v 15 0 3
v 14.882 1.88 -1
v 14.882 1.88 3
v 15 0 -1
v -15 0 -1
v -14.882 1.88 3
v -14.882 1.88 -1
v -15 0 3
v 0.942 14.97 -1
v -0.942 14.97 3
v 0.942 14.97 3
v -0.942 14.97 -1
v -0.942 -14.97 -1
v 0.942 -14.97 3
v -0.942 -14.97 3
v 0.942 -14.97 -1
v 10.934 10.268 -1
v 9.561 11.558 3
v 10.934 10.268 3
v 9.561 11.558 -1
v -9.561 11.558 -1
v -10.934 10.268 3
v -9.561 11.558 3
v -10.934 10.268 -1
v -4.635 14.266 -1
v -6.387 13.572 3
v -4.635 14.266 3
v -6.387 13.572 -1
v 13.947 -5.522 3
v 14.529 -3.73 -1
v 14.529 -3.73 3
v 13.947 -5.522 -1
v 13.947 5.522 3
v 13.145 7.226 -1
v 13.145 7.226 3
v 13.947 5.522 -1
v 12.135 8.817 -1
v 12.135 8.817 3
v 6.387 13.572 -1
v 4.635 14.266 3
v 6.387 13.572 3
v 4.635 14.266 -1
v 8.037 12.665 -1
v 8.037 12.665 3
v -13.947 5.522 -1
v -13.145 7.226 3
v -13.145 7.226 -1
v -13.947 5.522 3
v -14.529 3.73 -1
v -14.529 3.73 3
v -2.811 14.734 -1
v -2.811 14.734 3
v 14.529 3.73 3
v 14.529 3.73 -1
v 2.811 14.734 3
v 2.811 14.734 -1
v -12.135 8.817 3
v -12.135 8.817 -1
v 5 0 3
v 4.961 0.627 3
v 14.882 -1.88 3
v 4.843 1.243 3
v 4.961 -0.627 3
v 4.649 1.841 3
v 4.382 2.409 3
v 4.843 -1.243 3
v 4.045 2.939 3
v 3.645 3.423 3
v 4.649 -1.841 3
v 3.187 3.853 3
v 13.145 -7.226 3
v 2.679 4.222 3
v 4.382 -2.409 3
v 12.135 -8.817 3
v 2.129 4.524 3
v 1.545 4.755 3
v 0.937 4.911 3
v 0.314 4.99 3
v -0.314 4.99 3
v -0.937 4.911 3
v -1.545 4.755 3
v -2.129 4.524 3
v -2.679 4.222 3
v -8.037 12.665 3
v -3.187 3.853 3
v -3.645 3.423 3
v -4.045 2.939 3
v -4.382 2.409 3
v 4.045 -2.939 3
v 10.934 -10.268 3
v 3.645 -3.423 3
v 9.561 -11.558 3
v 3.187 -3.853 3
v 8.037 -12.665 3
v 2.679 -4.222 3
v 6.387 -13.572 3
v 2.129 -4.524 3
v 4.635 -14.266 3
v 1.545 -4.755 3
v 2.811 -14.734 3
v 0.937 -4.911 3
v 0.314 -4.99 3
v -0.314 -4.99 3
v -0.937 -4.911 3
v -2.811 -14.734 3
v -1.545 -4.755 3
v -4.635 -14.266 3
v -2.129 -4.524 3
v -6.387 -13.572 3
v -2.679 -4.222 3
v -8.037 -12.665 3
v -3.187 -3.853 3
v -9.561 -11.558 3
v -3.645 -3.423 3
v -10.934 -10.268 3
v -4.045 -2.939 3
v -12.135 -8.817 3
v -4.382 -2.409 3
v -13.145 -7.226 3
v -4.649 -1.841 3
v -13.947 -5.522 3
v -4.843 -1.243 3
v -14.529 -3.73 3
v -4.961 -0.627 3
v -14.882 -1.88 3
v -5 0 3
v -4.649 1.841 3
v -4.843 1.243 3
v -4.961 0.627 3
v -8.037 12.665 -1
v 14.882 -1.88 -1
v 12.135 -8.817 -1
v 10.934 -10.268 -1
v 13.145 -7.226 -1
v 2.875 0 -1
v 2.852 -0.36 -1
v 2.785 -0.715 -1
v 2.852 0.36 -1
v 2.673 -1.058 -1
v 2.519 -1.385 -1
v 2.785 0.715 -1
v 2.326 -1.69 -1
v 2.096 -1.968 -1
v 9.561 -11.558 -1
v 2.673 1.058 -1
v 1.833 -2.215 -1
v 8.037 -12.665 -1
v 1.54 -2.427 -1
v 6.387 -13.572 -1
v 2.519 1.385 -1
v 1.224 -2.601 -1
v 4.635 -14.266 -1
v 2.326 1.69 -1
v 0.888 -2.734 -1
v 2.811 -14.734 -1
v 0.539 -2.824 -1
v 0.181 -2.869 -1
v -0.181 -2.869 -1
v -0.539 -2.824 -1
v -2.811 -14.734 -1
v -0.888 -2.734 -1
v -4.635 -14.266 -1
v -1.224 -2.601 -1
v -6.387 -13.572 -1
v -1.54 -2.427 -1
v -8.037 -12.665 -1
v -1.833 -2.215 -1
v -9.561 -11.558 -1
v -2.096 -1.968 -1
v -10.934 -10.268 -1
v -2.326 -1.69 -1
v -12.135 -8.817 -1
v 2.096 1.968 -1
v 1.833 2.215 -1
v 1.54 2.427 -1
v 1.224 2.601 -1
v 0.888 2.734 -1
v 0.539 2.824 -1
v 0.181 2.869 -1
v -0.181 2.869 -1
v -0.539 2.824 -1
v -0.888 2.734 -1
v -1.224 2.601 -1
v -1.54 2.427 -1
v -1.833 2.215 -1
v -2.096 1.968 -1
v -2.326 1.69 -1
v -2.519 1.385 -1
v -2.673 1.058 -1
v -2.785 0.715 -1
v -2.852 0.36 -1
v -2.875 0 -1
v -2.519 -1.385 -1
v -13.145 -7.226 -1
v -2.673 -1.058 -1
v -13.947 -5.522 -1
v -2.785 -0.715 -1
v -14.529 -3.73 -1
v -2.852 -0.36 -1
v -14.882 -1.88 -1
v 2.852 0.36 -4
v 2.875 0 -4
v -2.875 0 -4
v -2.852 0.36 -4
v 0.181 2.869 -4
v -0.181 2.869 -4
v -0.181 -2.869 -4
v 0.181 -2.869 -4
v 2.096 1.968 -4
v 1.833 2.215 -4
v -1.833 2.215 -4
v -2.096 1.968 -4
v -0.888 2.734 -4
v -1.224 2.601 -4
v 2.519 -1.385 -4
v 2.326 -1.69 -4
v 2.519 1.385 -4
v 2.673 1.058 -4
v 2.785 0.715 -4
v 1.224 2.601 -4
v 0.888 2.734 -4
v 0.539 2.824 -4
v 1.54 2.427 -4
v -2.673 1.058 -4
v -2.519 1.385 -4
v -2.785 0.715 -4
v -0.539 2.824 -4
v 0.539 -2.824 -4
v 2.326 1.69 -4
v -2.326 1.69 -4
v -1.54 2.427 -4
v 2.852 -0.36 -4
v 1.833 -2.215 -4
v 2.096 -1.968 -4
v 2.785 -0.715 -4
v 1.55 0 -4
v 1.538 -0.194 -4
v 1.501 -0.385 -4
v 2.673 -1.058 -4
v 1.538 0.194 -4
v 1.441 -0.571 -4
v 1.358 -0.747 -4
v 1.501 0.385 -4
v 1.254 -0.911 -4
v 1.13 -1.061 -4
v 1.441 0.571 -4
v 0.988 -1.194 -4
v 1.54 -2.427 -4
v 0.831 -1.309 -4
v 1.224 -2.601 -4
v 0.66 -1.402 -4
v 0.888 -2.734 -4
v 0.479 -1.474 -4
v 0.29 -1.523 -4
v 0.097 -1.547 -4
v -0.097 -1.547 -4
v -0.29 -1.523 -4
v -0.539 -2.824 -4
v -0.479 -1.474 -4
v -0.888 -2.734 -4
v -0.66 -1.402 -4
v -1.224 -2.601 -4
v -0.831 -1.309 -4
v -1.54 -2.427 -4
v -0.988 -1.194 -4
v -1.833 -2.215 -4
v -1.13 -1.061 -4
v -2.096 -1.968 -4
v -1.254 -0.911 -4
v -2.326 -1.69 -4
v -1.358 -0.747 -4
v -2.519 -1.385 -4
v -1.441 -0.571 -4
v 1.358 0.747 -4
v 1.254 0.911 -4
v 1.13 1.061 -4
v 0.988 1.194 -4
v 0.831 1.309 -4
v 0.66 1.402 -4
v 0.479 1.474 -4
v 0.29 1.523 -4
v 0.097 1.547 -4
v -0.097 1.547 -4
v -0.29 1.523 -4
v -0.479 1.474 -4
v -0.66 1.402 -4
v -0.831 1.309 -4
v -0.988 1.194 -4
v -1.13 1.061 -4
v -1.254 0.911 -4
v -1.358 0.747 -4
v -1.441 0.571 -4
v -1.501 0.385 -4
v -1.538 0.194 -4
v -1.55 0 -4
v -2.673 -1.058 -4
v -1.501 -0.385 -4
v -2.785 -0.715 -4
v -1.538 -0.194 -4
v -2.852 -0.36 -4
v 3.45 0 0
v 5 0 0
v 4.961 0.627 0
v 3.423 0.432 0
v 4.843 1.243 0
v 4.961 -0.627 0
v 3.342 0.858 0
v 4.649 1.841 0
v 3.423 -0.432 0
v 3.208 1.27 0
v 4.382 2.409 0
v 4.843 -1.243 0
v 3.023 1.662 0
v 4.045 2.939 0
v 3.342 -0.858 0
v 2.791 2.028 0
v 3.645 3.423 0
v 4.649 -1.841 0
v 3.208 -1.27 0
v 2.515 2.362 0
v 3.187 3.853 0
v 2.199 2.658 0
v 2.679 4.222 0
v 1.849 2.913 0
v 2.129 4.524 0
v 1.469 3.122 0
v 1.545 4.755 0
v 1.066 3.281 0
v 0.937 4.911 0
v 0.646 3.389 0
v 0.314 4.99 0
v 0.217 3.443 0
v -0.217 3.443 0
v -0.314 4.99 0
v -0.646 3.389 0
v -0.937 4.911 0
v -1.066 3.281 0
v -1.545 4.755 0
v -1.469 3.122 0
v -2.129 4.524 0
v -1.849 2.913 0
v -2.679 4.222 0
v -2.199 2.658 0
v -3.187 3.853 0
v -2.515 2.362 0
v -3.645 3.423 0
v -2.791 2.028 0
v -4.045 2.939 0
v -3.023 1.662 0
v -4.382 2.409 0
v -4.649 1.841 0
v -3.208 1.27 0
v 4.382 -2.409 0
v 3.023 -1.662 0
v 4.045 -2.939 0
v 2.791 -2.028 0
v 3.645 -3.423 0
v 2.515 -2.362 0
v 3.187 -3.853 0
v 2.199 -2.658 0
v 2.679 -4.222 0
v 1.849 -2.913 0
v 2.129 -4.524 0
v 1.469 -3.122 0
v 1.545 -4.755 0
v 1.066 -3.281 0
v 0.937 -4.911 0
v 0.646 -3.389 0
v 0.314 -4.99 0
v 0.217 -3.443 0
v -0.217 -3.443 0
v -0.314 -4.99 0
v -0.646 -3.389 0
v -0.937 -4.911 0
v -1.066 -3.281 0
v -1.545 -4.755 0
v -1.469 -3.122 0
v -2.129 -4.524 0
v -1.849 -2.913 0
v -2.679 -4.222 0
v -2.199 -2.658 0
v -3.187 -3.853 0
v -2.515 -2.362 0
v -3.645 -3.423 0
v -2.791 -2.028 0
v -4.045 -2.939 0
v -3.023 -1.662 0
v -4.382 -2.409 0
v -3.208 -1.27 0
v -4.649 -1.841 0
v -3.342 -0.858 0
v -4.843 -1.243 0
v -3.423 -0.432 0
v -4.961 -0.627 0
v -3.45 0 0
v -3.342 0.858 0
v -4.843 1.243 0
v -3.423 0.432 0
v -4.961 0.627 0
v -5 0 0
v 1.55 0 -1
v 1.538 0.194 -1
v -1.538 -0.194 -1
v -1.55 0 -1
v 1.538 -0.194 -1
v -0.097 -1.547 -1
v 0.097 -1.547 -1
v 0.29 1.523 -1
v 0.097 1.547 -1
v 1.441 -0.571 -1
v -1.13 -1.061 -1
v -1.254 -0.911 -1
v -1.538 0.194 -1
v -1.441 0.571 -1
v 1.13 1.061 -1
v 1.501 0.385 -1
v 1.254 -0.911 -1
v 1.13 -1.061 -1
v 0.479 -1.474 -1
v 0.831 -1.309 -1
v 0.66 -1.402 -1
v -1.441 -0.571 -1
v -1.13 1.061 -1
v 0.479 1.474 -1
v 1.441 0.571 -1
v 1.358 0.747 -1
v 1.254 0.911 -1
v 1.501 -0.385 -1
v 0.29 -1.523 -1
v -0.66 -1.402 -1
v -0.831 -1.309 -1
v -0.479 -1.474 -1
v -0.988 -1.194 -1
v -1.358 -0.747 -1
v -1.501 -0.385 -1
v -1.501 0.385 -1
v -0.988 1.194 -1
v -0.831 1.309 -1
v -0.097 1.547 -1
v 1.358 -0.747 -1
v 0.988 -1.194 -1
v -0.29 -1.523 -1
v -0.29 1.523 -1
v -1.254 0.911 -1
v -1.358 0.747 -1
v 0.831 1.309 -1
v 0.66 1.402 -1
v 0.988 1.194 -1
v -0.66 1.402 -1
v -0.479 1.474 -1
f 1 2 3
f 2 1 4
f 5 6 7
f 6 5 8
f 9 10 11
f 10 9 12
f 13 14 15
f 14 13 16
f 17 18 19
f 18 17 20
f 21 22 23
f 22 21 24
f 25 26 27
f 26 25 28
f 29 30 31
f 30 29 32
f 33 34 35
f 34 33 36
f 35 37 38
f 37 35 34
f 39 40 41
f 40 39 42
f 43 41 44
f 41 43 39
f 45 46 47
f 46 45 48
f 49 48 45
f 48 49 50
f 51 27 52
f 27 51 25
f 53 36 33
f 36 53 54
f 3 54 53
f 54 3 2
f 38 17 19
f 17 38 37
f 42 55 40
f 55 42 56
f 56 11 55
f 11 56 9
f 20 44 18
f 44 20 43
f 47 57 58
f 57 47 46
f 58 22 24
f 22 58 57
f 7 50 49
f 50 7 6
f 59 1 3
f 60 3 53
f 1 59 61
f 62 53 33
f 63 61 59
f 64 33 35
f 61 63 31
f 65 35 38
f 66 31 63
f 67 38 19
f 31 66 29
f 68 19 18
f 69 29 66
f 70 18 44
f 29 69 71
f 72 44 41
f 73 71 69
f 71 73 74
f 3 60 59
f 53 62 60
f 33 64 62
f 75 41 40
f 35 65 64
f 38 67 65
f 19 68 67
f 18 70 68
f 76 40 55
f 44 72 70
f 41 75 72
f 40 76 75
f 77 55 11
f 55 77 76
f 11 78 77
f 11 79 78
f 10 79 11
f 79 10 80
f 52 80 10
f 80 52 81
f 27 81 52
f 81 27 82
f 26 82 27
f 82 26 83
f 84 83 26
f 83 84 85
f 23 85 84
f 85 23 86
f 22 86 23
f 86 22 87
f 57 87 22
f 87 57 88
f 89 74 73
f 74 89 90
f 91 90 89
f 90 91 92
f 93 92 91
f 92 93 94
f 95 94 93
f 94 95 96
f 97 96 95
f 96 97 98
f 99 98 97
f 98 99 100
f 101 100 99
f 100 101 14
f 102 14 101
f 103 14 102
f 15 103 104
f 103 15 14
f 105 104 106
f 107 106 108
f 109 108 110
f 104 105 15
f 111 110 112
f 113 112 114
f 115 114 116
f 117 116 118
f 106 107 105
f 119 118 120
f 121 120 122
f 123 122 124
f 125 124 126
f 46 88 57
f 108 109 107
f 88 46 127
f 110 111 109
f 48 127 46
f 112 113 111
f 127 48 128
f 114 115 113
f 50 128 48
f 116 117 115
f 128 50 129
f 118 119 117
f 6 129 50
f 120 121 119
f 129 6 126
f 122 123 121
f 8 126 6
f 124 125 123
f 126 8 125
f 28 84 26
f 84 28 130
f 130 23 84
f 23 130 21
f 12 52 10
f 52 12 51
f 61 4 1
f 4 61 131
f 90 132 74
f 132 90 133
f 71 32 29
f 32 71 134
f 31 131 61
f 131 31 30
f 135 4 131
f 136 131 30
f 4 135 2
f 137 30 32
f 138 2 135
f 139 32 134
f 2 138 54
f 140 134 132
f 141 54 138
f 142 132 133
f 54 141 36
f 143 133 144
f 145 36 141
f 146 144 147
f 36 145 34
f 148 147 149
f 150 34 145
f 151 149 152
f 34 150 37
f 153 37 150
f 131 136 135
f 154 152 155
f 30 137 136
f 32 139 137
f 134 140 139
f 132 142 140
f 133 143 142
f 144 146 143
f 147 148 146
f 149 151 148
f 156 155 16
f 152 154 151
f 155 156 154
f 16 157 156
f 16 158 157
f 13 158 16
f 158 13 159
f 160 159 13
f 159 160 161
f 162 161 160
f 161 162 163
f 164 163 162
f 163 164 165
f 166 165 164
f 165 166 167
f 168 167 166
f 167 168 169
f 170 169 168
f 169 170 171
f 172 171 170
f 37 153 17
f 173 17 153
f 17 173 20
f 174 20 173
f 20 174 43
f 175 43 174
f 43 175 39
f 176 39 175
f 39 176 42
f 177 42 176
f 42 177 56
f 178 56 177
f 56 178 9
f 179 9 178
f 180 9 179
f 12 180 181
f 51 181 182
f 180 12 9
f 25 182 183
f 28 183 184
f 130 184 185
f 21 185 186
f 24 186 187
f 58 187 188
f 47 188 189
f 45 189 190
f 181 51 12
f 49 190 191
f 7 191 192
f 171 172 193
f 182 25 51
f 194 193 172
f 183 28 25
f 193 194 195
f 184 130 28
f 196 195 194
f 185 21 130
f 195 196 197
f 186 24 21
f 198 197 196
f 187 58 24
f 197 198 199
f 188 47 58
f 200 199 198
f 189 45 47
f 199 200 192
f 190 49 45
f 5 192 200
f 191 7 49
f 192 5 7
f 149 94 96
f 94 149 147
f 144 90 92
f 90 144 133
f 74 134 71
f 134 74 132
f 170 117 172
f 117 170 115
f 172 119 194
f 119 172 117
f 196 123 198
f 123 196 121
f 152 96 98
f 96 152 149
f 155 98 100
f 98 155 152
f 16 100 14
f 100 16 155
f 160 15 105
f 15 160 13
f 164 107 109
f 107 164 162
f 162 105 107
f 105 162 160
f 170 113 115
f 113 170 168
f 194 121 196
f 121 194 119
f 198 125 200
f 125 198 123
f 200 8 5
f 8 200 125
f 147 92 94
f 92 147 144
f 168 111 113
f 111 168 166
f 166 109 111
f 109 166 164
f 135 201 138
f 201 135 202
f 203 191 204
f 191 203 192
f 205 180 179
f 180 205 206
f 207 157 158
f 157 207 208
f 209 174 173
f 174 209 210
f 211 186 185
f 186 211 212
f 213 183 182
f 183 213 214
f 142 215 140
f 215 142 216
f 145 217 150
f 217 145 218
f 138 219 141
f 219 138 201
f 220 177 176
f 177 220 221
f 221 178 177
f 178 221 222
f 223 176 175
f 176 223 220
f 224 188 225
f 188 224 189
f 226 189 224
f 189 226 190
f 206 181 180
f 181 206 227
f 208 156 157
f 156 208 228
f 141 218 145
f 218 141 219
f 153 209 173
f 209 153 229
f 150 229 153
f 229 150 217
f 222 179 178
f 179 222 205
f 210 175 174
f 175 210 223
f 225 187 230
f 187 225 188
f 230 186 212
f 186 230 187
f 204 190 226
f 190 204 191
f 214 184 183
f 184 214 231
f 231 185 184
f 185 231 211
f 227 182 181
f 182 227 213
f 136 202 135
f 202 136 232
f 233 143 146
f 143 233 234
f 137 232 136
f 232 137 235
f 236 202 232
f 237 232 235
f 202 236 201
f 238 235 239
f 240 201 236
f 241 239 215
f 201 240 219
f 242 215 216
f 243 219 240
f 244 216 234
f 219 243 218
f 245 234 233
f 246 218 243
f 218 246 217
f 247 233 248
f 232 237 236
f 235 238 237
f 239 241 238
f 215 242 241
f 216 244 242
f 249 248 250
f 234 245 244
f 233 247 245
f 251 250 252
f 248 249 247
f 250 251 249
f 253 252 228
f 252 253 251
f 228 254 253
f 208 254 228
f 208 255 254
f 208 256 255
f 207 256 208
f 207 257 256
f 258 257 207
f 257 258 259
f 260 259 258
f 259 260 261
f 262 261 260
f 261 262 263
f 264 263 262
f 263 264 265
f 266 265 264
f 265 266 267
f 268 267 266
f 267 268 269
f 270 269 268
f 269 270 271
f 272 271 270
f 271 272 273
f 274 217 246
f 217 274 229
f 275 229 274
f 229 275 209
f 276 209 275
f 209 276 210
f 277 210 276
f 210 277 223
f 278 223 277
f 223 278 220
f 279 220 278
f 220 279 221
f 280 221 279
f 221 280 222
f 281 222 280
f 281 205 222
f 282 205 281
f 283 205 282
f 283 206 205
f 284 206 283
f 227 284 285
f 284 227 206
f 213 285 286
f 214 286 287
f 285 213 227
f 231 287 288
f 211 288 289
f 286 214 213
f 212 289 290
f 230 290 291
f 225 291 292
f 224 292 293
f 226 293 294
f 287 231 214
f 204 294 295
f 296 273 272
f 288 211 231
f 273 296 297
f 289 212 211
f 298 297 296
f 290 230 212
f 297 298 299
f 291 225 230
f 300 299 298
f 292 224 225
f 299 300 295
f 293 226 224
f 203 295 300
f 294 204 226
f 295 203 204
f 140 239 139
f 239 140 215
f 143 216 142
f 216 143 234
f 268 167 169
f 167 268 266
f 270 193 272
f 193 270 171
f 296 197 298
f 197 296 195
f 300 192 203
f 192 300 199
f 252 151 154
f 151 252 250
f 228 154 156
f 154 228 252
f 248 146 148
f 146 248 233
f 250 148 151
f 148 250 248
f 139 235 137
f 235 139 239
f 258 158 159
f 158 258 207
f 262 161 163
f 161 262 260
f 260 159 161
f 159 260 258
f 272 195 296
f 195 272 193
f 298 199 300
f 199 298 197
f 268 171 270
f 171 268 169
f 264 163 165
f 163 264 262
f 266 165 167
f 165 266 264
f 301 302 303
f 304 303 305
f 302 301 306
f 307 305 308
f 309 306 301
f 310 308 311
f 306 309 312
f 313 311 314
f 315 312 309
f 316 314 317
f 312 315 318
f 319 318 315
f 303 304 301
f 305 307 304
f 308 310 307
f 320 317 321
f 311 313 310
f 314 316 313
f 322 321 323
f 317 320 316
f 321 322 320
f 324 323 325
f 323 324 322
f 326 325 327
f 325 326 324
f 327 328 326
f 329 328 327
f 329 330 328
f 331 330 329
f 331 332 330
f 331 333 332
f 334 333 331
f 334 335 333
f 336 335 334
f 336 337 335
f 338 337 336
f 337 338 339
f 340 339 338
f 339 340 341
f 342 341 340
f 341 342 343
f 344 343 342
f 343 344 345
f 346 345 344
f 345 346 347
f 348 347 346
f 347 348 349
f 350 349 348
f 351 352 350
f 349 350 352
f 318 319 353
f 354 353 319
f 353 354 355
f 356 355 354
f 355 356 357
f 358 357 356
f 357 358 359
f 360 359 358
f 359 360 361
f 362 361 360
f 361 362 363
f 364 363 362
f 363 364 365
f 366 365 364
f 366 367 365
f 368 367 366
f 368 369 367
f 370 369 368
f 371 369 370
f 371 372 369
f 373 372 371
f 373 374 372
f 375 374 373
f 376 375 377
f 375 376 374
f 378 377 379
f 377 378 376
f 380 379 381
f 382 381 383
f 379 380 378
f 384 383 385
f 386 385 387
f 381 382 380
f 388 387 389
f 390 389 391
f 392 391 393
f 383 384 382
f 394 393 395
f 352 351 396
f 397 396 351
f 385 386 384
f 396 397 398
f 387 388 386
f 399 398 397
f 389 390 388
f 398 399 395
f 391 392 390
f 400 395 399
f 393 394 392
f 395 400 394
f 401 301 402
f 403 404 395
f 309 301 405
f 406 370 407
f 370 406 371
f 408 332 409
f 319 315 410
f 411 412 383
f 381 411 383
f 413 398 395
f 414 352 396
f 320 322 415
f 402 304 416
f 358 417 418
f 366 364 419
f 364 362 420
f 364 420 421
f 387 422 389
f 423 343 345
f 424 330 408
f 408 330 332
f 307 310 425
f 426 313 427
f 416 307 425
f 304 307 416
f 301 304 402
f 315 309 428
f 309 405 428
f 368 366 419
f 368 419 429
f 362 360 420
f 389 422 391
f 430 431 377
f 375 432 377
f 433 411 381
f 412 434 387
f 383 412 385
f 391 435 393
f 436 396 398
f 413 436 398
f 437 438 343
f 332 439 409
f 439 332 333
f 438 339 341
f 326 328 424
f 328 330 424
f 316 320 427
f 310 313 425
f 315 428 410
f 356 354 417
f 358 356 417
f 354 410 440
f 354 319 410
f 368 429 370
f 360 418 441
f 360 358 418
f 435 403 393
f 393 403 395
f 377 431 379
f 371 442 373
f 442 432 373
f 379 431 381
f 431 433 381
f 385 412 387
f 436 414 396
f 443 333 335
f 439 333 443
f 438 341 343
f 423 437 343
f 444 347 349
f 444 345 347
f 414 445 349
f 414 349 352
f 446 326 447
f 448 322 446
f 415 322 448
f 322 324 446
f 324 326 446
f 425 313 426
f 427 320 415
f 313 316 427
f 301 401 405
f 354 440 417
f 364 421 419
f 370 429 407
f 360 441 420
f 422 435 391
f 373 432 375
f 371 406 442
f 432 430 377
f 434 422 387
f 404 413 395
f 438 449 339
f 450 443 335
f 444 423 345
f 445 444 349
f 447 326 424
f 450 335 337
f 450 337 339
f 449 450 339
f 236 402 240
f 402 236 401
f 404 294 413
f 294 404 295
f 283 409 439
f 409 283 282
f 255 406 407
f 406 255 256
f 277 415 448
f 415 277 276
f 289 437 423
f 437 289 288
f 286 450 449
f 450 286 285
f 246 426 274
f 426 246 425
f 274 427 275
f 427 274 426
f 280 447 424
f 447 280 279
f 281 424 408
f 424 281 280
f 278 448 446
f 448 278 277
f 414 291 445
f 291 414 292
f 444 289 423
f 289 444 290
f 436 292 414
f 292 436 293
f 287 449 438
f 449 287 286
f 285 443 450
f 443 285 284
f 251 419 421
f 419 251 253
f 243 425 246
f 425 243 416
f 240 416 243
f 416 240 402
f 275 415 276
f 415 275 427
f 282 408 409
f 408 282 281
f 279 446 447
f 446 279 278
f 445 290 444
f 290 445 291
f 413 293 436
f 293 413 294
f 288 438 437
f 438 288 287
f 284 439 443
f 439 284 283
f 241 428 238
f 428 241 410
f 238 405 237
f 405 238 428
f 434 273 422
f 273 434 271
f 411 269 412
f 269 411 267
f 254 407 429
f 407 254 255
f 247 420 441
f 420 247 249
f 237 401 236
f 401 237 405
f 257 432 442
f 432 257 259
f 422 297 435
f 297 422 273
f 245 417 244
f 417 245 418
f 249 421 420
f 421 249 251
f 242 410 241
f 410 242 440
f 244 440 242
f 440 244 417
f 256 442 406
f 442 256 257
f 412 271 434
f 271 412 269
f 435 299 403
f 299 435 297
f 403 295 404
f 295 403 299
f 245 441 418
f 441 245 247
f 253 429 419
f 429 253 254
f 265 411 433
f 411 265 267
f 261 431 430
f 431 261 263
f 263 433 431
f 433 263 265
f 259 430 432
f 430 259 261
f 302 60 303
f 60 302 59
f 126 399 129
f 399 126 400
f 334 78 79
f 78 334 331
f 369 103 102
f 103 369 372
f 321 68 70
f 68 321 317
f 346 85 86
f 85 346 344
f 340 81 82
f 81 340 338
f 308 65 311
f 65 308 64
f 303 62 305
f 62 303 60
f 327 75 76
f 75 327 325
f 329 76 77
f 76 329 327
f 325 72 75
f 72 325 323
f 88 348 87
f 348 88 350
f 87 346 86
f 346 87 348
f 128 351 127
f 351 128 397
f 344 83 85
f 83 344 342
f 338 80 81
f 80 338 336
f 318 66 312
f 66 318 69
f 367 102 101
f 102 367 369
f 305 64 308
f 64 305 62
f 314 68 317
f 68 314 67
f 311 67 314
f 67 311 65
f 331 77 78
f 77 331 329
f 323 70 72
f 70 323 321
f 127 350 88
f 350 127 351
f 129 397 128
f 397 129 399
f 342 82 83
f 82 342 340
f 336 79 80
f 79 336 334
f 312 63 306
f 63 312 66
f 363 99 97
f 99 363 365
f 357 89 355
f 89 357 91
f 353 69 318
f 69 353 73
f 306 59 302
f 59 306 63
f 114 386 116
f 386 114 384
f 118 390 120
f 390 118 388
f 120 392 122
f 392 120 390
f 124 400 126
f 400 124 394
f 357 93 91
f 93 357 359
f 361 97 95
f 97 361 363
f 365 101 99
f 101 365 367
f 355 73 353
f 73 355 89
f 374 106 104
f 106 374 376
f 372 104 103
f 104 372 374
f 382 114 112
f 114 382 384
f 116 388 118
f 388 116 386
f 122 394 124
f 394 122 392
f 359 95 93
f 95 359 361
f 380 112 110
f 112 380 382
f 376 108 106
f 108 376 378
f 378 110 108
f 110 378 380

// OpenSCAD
$fn = 50;


difference() {
	union() {
		translate(v = [0, 0, -1.0000000000]) {
			cylinder(h = 4.0000000000, r = 15.0000000000);
		}
		#translate(v = [0, 0, -4.0000000000]) {
			cylinder(h = 4.0000000000, r = 2.8750000000);
		}
	}
	union() {
		translate(v = [0, 0, 0]) {
			rotate(a = [0, 0, 0]) {
				difference() {
					union() {
						translate(v = [0, 0, -4.0000000000]) {
							cylinder(h = 4.0000000000, r = 1.2500000000);
						}
						translate(v = [0, 0, -1.0000000000]) {
							cylinder(h = 1.0000000000, r1 = 1.5500000000, r2 = 3.4500000000);
						}
						translate(v = [0, 0, -4.0000000000]) {
							cylinder(h = 4.0000000000, r = 1.5500000000);
						}
						translate(v = [0, 0, -4.0000000000]) {
							cylinder(h = 4.0000000000, r = 1.2500000000);
						}
					}
					union();
				}
			}
		}
		#cylinder(h = 3, r = 5.0000000000);
	}
}
